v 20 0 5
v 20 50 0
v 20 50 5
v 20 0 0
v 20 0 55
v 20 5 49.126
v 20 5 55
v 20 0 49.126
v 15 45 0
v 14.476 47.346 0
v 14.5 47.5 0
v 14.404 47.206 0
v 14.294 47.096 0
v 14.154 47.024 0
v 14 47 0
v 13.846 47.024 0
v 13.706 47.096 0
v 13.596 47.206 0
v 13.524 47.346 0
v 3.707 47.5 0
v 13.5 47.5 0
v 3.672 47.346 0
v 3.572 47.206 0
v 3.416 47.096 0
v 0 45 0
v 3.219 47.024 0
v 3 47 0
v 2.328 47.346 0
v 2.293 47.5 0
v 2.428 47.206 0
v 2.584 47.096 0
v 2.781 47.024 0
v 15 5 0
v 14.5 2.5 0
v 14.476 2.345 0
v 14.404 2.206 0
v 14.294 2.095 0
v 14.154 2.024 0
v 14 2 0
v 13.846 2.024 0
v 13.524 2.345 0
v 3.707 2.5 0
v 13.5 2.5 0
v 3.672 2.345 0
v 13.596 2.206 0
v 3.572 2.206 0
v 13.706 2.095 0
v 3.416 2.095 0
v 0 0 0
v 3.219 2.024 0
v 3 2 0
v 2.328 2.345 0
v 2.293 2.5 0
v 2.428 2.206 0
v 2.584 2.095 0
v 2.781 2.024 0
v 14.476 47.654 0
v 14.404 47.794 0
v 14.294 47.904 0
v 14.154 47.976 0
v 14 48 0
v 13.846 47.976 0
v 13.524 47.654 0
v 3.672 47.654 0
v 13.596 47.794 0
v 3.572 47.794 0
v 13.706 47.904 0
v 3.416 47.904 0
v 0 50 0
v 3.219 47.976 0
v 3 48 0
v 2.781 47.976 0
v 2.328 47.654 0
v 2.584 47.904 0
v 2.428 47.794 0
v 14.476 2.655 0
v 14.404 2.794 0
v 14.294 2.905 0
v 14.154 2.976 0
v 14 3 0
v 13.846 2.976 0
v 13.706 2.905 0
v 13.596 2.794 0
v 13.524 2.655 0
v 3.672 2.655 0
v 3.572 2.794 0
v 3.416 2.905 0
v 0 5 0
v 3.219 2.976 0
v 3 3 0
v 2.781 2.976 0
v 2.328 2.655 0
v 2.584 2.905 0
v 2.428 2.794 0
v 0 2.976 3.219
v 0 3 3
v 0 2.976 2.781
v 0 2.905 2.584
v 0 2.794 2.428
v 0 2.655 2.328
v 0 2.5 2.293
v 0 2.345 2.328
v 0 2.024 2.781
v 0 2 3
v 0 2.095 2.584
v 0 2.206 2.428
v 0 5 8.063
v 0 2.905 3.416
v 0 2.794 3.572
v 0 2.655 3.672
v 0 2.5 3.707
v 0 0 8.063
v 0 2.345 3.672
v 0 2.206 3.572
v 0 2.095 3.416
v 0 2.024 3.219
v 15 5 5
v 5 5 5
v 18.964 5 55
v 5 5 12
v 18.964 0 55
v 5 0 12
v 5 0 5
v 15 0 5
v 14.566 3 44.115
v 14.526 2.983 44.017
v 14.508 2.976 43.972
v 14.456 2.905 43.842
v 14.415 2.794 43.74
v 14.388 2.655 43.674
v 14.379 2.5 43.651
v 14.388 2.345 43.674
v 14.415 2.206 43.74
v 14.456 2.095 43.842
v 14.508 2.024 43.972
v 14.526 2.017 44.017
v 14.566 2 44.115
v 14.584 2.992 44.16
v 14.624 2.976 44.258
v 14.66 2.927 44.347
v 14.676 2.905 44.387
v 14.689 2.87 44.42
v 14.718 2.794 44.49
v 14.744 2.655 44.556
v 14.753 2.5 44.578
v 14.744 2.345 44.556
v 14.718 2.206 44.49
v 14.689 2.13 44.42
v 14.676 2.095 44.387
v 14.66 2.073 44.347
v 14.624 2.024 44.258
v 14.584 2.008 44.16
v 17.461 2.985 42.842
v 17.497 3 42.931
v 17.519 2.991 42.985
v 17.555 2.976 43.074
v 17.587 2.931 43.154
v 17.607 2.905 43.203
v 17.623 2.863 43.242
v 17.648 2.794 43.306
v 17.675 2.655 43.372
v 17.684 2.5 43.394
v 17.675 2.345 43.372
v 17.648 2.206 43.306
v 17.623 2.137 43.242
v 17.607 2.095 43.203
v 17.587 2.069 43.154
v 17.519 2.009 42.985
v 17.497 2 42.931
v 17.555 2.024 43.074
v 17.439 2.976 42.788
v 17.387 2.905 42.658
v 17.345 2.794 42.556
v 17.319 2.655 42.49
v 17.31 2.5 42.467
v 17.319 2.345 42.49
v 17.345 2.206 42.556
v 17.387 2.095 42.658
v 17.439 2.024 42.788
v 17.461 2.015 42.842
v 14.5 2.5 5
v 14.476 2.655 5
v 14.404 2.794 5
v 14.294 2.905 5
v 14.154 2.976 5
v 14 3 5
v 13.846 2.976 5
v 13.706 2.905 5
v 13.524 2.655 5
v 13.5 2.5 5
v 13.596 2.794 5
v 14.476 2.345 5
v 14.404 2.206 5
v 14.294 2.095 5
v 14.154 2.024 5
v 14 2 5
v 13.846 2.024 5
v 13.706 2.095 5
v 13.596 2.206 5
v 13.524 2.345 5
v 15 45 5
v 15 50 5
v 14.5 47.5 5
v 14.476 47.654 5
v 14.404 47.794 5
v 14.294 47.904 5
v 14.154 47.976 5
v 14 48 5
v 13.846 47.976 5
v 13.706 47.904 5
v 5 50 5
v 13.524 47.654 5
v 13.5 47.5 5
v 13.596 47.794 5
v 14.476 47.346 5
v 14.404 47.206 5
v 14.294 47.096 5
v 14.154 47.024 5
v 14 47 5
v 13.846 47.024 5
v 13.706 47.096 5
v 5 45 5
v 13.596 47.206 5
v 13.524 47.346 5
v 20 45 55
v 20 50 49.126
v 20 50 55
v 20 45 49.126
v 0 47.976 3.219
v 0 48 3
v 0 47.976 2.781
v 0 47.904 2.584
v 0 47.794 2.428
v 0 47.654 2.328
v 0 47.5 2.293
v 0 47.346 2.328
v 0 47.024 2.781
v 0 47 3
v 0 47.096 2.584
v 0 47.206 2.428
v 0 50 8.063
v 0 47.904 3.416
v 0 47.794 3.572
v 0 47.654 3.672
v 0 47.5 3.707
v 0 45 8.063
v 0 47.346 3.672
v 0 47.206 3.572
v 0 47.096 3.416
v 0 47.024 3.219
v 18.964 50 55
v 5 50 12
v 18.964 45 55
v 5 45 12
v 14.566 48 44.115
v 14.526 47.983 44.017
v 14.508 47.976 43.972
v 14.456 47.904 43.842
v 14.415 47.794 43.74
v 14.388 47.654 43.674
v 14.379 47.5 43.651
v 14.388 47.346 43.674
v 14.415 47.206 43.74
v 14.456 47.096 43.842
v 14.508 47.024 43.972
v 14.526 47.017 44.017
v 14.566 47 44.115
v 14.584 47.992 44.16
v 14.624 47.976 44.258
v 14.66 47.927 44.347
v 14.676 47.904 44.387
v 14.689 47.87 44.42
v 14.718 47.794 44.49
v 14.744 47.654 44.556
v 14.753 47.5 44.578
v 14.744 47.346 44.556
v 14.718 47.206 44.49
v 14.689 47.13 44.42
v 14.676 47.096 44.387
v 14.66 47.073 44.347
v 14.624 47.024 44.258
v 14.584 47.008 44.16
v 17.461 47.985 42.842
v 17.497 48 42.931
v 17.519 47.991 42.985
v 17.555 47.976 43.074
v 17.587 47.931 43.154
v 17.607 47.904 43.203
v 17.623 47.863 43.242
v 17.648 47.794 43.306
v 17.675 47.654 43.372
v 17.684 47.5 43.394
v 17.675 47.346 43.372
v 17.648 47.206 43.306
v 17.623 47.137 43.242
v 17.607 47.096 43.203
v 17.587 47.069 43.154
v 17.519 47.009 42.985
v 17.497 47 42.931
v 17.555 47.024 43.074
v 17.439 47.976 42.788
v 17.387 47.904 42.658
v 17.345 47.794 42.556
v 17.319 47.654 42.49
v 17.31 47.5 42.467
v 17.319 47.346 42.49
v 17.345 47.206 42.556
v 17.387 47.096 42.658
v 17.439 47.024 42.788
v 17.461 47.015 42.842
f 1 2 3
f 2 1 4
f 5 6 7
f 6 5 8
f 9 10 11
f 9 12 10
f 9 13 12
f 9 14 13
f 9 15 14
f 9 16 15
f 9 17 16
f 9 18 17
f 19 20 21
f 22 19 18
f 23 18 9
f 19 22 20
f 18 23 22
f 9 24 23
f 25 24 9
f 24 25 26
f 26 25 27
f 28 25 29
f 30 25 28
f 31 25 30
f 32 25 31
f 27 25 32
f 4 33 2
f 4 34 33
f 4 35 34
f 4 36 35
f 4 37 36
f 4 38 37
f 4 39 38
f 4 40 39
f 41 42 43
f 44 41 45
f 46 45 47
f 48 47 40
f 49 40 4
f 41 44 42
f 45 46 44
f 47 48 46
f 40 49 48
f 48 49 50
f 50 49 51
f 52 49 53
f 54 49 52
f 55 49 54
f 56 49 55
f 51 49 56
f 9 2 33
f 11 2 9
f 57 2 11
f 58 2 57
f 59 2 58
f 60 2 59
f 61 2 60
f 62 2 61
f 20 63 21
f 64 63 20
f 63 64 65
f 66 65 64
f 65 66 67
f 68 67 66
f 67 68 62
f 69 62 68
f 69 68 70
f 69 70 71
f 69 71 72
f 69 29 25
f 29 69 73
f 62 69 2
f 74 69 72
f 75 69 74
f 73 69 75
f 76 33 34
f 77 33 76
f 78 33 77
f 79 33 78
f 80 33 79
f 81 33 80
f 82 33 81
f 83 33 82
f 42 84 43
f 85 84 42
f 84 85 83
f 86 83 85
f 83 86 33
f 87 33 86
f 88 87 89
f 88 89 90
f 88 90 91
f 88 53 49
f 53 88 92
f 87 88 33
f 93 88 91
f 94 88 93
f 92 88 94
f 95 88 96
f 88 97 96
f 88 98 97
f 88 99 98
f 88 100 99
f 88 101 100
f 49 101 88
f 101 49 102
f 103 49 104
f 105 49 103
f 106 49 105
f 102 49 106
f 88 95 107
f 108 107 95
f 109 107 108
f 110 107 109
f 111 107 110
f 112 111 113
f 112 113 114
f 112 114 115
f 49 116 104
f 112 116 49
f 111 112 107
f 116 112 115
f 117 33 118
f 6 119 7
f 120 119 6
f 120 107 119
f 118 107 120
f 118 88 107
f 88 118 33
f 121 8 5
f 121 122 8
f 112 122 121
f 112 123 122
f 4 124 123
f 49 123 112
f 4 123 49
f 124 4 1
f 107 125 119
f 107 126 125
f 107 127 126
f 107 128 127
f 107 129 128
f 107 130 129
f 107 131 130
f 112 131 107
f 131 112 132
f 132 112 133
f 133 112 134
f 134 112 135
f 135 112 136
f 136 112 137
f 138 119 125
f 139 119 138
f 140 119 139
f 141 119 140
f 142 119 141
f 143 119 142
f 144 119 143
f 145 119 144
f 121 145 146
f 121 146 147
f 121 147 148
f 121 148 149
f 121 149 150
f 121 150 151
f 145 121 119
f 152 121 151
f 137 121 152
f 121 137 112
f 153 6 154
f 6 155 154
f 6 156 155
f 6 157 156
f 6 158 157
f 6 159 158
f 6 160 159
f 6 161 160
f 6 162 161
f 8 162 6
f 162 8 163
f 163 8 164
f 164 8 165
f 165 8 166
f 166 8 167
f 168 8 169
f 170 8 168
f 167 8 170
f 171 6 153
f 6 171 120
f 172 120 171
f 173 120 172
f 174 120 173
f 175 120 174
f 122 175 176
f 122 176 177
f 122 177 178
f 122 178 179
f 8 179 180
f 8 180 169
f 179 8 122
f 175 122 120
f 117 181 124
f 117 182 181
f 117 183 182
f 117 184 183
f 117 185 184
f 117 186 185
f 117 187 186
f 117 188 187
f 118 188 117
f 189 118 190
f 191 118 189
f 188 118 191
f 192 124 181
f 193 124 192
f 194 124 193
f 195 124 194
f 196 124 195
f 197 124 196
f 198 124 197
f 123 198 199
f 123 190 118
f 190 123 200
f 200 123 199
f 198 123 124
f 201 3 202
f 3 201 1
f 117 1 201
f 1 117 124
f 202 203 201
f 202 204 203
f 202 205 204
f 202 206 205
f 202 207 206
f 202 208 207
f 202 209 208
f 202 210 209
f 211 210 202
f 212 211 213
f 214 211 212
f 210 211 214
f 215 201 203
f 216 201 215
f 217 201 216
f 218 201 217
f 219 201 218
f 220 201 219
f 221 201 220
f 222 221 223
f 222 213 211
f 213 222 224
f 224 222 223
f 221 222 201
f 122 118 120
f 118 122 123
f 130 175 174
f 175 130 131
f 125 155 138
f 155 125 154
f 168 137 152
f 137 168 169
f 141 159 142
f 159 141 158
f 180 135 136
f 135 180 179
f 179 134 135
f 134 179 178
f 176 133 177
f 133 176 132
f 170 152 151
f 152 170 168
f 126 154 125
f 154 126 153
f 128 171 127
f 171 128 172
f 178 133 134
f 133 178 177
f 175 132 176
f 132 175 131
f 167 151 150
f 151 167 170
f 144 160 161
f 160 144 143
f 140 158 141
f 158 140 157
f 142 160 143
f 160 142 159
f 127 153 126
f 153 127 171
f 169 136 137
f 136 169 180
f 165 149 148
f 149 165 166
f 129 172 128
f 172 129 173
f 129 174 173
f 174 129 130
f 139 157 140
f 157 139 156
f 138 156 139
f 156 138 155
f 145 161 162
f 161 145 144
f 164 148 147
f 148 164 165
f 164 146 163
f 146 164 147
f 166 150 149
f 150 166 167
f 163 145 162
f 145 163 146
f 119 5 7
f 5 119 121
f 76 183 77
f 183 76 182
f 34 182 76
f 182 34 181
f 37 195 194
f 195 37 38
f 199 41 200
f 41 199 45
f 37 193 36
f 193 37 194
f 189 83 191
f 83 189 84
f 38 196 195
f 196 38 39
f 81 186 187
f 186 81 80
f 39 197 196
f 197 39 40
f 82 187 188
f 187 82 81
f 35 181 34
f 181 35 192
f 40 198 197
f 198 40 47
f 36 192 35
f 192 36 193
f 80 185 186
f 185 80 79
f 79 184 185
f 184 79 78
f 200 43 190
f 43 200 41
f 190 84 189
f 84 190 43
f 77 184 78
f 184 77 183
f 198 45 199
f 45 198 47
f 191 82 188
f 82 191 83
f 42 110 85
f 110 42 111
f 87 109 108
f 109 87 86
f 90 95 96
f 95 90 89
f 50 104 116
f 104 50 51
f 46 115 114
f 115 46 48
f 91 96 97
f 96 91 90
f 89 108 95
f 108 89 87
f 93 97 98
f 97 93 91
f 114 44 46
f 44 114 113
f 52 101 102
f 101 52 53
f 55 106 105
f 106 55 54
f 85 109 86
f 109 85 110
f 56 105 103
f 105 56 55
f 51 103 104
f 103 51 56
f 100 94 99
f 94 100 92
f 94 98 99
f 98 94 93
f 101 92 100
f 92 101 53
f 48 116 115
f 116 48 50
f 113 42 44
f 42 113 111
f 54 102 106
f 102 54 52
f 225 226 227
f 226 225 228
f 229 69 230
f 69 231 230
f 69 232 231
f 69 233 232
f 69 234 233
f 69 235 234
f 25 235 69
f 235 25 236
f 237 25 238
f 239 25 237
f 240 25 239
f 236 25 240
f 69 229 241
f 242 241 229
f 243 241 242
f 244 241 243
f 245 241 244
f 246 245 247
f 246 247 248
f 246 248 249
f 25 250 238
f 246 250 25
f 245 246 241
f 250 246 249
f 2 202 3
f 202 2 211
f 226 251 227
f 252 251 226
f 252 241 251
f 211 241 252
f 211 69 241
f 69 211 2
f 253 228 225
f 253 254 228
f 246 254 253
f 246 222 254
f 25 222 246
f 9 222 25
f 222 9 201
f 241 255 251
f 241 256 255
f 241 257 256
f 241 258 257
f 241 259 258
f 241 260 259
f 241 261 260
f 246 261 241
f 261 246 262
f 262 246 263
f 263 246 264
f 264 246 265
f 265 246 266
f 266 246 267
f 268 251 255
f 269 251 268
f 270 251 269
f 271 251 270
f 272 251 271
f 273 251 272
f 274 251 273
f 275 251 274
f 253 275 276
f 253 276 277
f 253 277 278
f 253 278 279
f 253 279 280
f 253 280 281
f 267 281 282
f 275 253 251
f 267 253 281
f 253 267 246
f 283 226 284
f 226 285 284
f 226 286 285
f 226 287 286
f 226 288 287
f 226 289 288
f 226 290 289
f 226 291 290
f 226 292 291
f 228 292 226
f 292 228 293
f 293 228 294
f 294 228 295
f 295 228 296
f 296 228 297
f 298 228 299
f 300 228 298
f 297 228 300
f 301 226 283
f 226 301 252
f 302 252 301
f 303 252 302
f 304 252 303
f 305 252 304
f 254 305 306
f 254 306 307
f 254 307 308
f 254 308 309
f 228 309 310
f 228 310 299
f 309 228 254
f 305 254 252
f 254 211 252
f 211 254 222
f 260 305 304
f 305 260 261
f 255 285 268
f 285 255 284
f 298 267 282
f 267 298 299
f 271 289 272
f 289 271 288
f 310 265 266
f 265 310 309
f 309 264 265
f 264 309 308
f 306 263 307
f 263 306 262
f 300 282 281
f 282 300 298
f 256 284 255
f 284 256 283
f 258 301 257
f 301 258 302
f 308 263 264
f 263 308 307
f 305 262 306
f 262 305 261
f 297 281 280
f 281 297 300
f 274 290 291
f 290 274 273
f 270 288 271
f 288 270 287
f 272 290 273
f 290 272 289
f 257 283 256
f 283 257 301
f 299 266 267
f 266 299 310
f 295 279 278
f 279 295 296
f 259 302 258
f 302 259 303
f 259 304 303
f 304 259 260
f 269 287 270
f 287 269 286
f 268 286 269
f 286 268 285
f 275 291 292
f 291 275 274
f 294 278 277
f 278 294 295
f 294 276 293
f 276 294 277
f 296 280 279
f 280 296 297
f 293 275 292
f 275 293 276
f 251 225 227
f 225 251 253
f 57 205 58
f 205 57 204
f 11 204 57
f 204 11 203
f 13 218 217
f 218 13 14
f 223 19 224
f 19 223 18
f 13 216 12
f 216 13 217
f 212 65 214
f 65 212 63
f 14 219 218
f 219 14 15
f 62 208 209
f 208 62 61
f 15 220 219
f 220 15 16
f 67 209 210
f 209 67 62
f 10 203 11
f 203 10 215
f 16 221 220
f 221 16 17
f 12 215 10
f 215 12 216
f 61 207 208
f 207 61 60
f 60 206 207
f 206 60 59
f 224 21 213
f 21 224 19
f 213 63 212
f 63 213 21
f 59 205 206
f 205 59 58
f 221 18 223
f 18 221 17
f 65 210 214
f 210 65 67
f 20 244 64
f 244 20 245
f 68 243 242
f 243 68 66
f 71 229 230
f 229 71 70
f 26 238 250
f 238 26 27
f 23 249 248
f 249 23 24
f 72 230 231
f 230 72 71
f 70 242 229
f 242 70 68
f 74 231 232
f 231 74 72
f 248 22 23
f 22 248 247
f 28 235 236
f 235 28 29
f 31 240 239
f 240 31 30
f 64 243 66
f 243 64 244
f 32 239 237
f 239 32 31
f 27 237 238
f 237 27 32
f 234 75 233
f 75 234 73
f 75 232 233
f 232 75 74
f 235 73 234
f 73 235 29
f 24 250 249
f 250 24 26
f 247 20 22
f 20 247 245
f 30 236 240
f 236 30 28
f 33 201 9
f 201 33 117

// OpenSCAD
// A 68 degree template for aligning f22 vertical stabilizers.

$fn=20;
THETA=68;

module angler() {
    difference() {
        cube([20,5,60]);
        translate([-22,0,7]) rotate([0,90-THETA,0]) cube([20,5,80]);
        translate([5,0,12]) rotate([0,90-THETA,0]) cube([20,5,80]);
        translate([5,0,5]) cube([30,5,7]);
        translate([0,2.5,50]) rotate([0,180-THETA,0]) cylinder(50,d=1);
        translate([15,0,55]) cube([5,50,5]);
        //#translate([15.5,2.5,-1]) rotate([0,45,0]) cylinder(10,d=1);
        #translate([14,2.5,-1]) rotate([0,0,0]) cylinder(10,d=1);
        translate([6,2.5,-3]) rotate([0,-45,0]) cylinder(50,d=1);
    }
}

module fullpiece() {
    angler();
    translate([0,45,0]) angler();
    translate([15,0,0]) cube([5,50,5]);
}

fullpiece();
